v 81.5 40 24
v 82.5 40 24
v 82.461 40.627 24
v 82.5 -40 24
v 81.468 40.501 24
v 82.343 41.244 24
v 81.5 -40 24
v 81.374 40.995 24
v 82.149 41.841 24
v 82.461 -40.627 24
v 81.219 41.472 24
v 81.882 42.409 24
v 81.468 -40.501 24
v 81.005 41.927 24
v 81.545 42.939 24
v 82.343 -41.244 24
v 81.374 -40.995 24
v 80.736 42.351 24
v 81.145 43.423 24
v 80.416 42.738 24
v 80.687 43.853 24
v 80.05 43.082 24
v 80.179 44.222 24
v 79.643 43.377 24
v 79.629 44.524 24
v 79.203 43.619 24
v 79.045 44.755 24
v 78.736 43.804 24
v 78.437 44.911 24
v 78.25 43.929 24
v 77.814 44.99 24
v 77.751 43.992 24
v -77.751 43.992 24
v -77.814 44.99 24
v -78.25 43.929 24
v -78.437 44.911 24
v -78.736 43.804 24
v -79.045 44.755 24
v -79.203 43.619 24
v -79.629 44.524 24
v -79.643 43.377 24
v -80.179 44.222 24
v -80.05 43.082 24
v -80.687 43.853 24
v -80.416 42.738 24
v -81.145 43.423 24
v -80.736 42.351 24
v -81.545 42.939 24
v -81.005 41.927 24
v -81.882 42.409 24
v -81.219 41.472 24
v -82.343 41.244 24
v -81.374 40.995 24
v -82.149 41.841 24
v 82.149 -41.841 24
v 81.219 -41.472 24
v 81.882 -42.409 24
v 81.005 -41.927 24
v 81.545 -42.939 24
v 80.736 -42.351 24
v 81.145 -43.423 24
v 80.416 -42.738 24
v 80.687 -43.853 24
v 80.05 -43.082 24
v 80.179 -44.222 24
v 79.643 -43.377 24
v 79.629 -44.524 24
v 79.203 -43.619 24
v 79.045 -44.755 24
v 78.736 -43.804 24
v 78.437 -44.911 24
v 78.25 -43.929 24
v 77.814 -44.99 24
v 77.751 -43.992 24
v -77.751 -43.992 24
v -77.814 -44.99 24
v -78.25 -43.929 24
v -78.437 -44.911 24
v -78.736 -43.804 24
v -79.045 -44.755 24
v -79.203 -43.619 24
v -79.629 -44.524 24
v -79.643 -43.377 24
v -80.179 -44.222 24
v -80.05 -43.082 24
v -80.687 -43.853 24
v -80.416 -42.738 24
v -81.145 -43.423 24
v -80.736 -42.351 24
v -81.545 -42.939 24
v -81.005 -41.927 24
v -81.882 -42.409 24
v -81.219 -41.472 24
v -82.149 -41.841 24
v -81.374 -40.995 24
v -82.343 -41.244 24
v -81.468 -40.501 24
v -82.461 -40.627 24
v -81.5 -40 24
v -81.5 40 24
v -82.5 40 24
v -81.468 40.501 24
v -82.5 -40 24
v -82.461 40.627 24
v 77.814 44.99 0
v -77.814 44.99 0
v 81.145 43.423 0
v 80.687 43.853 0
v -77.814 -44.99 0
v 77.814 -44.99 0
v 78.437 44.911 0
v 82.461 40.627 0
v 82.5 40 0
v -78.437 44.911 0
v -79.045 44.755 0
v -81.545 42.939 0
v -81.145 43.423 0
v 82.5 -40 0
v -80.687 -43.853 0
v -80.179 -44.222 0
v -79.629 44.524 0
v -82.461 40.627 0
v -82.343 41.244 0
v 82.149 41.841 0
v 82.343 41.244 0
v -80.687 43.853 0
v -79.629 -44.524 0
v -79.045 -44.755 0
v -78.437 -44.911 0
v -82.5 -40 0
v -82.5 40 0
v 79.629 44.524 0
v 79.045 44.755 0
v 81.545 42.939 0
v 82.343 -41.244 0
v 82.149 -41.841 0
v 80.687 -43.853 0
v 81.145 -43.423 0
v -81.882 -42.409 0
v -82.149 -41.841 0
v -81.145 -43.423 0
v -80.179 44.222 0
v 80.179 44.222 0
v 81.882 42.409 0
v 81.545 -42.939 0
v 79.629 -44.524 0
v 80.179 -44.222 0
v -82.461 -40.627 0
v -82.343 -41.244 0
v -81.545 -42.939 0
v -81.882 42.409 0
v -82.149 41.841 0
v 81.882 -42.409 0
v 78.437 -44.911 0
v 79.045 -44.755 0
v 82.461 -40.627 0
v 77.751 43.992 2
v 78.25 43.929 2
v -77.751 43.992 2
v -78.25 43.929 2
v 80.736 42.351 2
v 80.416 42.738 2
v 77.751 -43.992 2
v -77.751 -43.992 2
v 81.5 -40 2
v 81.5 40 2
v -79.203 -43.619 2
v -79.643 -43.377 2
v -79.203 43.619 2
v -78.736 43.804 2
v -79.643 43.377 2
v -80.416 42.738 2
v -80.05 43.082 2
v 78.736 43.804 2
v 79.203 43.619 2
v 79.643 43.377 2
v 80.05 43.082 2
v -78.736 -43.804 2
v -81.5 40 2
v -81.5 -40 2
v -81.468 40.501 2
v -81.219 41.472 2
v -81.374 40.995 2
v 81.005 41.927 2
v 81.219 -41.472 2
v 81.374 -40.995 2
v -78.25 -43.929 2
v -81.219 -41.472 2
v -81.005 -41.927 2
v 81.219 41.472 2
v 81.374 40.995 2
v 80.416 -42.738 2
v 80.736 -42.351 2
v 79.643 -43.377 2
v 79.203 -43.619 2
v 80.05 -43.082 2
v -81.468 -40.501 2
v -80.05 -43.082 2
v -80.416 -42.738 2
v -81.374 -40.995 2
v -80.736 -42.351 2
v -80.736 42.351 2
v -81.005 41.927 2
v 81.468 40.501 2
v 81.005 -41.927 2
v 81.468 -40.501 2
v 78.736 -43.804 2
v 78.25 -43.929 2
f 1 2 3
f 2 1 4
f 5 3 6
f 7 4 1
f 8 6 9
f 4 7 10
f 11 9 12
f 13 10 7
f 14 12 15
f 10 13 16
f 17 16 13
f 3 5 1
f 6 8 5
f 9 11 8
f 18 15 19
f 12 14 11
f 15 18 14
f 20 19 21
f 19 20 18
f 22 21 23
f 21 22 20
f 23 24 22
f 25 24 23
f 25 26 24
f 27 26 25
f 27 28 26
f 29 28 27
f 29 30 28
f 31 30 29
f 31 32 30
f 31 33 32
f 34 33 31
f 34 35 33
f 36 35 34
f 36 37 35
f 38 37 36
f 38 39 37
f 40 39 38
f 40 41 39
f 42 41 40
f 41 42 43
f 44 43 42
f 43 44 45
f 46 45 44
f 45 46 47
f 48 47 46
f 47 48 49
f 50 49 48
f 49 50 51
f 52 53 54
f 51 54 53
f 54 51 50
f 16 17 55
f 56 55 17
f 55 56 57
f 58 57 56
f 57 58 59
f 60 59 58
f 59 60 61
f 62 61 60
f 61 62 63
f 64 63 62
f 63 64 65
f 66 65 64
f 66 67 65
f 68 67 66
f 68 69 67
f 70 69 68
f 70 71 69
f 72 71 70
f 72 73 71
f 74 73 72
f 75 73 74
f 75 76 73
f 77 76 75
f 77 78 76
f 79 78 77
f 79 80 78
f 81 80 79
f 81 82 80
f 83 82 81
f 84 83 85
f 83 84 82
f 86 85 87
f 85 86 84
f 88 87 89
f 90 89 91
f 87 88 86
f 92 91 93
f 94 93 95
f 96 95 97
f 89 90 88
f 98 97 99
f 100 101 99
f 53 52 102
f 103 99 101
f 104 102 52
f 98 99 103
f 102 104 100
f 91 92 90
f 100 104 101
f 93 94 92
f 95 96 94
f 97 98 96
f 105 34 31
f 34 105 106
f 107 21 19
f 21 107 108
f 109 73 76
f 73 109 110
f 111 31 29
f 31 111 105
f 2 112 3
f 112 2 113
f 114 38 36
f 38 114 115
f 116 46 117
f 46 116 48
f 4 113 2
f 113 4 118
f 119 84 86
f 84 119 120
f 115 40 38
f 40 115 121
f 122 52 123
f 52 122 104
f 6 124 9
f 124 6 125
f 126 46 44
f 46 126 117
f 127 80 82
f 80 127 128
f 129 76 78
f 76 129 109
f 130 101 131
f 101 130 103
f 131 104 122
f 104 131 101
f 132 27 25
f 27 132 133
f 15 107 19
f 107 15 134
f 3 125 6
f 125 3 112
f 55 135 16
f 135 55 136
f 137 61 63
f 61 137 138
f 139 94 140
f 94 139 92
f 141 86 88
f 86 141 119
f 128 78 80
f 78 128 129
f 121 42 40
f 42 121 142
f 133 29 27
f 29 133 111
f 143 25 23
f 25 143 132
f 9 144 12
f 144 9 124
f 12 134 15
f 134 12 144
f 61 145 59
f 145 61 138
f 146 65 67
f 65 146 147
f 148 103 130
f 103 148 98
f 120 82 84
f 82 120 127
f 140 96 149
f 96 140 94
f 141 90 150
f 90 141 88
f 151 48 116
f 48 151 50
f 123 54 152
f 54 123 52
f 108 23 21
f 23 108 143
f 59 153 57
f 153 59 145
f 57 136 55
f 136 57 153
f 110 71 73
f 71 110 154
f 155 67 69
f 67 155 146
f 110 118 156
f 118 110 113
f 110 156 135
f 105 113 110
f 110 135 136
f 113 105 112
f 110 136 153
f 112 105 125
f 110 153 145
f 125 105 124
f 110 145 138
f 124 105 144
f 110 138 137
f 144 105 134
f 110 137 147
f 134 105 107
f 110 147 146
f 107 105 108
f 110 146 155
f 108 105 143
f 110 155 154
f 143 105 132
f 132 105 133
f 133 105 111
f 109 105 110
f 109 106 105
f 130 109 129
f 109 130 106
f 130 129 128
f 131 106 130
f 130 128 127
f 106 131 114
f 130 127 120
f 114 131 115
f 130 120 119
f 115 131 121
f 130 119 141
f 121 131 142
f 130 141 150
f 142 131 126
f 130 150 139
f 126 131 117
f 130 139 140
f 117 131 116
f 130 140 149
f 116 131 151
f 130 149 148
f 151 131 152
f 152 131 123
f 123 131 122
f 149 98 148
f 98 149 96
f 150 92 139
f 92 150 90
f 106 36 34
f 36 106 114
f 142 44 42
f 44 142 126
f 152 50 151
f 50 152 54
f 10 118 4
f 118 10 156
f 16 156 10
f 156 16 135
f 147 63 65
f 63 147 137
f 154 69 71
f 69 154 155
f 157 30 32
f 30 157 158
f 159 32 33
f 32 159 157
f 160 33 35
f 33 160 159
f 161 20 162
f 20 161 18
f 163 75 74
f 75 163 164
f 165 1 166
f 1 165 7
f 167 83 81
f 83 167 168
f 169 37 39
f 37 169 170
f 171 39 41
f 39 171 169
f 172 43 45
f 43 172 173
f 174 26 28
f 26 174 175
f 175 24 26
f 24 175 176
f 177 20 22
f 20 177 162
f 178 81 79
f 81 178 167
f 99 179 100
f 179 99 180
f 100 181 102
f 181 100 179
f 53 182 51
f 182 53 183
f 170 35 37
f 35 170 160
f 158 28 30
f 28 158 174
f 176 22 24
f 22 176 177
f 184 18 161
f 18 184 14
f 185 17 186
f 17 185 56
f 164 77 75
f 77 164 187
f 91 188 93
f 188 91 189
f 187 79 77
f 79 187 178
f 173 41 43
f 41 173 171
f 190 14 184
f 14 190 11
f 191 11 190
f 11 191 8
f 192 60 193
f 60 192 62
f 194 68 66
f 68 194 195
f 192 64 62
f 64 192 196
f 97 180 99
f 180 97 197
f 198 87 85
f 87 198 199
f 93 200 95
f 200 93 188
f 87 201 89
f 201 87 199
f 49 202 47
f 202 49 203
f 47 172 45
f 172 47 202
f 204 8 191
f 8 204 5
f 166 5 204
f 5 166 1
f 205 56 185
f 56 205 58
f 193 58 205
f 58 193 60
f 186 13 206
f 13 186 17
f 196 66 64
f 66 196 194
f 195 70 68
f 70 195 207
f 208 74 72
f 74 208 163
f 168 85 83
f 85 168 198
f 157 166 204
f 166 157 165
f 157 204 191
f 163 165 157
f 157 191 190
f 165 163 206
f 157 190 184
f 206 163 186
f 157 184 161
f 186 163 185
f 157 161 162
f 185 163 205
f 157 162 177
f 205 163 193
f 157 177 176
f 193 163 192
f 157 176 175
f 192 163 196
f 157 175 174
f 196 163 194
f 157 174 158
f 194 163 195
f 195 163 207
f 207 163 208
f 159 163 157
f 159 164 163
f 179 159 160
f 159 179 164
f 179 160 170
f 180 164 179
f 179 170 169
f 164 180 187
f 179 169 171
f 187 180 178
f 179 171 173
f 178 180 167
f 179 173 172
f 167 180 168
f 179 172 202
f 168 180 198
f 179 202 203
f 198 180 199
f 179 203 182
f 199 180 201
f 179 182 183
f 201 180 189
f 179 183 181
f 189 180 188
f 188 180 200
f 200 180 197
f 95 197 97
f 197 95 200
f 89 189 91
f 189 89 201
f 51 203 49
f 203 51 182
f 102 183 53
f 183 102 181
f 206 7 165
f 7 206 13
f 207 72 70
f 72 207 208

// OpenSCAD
$fn = 50;


difference() {
	union() {
		hull() {
			translate(v = [-77.5000000000, 40.0000000000, 0]) {
				cylinder(h = 24, r = 5);
			}
			translate(v = [77.5000000000, 40.0000000000, 0]) {
				cylinder(h = 24, r = 5);
			}
			translate(v = [-77.5000000000, -40.0000000000, 0]) {
				cylinder(h = 24, r = 5);
			}
			translate(v = [77.5000000000, -40.0000000000, 0]) {
				cylinder(h = 24, r = 5);
			}
		}
	}
	union() {
		translate(v = [0, 0, 2]) {
			hull() {
				translate(v = [-77.5000000000, 40.0000000000, 0]) {
					cylinder(h = 22, r = 4);
				}
				translate(v = [77.5000000000, 40.0000000000, 0]) {
					cylinder(h = 22, r = 4);
				}
				translate(v = [-77.5000000000, -40.0000000000, 0]) {
					cylinder(h = 22, r = 4);
				}
				translate(v = [77.5000000000, -40.0000000000, 0]) {
					cylinder(h = 22, r = 4);
				}
			}
		}
	}
}
